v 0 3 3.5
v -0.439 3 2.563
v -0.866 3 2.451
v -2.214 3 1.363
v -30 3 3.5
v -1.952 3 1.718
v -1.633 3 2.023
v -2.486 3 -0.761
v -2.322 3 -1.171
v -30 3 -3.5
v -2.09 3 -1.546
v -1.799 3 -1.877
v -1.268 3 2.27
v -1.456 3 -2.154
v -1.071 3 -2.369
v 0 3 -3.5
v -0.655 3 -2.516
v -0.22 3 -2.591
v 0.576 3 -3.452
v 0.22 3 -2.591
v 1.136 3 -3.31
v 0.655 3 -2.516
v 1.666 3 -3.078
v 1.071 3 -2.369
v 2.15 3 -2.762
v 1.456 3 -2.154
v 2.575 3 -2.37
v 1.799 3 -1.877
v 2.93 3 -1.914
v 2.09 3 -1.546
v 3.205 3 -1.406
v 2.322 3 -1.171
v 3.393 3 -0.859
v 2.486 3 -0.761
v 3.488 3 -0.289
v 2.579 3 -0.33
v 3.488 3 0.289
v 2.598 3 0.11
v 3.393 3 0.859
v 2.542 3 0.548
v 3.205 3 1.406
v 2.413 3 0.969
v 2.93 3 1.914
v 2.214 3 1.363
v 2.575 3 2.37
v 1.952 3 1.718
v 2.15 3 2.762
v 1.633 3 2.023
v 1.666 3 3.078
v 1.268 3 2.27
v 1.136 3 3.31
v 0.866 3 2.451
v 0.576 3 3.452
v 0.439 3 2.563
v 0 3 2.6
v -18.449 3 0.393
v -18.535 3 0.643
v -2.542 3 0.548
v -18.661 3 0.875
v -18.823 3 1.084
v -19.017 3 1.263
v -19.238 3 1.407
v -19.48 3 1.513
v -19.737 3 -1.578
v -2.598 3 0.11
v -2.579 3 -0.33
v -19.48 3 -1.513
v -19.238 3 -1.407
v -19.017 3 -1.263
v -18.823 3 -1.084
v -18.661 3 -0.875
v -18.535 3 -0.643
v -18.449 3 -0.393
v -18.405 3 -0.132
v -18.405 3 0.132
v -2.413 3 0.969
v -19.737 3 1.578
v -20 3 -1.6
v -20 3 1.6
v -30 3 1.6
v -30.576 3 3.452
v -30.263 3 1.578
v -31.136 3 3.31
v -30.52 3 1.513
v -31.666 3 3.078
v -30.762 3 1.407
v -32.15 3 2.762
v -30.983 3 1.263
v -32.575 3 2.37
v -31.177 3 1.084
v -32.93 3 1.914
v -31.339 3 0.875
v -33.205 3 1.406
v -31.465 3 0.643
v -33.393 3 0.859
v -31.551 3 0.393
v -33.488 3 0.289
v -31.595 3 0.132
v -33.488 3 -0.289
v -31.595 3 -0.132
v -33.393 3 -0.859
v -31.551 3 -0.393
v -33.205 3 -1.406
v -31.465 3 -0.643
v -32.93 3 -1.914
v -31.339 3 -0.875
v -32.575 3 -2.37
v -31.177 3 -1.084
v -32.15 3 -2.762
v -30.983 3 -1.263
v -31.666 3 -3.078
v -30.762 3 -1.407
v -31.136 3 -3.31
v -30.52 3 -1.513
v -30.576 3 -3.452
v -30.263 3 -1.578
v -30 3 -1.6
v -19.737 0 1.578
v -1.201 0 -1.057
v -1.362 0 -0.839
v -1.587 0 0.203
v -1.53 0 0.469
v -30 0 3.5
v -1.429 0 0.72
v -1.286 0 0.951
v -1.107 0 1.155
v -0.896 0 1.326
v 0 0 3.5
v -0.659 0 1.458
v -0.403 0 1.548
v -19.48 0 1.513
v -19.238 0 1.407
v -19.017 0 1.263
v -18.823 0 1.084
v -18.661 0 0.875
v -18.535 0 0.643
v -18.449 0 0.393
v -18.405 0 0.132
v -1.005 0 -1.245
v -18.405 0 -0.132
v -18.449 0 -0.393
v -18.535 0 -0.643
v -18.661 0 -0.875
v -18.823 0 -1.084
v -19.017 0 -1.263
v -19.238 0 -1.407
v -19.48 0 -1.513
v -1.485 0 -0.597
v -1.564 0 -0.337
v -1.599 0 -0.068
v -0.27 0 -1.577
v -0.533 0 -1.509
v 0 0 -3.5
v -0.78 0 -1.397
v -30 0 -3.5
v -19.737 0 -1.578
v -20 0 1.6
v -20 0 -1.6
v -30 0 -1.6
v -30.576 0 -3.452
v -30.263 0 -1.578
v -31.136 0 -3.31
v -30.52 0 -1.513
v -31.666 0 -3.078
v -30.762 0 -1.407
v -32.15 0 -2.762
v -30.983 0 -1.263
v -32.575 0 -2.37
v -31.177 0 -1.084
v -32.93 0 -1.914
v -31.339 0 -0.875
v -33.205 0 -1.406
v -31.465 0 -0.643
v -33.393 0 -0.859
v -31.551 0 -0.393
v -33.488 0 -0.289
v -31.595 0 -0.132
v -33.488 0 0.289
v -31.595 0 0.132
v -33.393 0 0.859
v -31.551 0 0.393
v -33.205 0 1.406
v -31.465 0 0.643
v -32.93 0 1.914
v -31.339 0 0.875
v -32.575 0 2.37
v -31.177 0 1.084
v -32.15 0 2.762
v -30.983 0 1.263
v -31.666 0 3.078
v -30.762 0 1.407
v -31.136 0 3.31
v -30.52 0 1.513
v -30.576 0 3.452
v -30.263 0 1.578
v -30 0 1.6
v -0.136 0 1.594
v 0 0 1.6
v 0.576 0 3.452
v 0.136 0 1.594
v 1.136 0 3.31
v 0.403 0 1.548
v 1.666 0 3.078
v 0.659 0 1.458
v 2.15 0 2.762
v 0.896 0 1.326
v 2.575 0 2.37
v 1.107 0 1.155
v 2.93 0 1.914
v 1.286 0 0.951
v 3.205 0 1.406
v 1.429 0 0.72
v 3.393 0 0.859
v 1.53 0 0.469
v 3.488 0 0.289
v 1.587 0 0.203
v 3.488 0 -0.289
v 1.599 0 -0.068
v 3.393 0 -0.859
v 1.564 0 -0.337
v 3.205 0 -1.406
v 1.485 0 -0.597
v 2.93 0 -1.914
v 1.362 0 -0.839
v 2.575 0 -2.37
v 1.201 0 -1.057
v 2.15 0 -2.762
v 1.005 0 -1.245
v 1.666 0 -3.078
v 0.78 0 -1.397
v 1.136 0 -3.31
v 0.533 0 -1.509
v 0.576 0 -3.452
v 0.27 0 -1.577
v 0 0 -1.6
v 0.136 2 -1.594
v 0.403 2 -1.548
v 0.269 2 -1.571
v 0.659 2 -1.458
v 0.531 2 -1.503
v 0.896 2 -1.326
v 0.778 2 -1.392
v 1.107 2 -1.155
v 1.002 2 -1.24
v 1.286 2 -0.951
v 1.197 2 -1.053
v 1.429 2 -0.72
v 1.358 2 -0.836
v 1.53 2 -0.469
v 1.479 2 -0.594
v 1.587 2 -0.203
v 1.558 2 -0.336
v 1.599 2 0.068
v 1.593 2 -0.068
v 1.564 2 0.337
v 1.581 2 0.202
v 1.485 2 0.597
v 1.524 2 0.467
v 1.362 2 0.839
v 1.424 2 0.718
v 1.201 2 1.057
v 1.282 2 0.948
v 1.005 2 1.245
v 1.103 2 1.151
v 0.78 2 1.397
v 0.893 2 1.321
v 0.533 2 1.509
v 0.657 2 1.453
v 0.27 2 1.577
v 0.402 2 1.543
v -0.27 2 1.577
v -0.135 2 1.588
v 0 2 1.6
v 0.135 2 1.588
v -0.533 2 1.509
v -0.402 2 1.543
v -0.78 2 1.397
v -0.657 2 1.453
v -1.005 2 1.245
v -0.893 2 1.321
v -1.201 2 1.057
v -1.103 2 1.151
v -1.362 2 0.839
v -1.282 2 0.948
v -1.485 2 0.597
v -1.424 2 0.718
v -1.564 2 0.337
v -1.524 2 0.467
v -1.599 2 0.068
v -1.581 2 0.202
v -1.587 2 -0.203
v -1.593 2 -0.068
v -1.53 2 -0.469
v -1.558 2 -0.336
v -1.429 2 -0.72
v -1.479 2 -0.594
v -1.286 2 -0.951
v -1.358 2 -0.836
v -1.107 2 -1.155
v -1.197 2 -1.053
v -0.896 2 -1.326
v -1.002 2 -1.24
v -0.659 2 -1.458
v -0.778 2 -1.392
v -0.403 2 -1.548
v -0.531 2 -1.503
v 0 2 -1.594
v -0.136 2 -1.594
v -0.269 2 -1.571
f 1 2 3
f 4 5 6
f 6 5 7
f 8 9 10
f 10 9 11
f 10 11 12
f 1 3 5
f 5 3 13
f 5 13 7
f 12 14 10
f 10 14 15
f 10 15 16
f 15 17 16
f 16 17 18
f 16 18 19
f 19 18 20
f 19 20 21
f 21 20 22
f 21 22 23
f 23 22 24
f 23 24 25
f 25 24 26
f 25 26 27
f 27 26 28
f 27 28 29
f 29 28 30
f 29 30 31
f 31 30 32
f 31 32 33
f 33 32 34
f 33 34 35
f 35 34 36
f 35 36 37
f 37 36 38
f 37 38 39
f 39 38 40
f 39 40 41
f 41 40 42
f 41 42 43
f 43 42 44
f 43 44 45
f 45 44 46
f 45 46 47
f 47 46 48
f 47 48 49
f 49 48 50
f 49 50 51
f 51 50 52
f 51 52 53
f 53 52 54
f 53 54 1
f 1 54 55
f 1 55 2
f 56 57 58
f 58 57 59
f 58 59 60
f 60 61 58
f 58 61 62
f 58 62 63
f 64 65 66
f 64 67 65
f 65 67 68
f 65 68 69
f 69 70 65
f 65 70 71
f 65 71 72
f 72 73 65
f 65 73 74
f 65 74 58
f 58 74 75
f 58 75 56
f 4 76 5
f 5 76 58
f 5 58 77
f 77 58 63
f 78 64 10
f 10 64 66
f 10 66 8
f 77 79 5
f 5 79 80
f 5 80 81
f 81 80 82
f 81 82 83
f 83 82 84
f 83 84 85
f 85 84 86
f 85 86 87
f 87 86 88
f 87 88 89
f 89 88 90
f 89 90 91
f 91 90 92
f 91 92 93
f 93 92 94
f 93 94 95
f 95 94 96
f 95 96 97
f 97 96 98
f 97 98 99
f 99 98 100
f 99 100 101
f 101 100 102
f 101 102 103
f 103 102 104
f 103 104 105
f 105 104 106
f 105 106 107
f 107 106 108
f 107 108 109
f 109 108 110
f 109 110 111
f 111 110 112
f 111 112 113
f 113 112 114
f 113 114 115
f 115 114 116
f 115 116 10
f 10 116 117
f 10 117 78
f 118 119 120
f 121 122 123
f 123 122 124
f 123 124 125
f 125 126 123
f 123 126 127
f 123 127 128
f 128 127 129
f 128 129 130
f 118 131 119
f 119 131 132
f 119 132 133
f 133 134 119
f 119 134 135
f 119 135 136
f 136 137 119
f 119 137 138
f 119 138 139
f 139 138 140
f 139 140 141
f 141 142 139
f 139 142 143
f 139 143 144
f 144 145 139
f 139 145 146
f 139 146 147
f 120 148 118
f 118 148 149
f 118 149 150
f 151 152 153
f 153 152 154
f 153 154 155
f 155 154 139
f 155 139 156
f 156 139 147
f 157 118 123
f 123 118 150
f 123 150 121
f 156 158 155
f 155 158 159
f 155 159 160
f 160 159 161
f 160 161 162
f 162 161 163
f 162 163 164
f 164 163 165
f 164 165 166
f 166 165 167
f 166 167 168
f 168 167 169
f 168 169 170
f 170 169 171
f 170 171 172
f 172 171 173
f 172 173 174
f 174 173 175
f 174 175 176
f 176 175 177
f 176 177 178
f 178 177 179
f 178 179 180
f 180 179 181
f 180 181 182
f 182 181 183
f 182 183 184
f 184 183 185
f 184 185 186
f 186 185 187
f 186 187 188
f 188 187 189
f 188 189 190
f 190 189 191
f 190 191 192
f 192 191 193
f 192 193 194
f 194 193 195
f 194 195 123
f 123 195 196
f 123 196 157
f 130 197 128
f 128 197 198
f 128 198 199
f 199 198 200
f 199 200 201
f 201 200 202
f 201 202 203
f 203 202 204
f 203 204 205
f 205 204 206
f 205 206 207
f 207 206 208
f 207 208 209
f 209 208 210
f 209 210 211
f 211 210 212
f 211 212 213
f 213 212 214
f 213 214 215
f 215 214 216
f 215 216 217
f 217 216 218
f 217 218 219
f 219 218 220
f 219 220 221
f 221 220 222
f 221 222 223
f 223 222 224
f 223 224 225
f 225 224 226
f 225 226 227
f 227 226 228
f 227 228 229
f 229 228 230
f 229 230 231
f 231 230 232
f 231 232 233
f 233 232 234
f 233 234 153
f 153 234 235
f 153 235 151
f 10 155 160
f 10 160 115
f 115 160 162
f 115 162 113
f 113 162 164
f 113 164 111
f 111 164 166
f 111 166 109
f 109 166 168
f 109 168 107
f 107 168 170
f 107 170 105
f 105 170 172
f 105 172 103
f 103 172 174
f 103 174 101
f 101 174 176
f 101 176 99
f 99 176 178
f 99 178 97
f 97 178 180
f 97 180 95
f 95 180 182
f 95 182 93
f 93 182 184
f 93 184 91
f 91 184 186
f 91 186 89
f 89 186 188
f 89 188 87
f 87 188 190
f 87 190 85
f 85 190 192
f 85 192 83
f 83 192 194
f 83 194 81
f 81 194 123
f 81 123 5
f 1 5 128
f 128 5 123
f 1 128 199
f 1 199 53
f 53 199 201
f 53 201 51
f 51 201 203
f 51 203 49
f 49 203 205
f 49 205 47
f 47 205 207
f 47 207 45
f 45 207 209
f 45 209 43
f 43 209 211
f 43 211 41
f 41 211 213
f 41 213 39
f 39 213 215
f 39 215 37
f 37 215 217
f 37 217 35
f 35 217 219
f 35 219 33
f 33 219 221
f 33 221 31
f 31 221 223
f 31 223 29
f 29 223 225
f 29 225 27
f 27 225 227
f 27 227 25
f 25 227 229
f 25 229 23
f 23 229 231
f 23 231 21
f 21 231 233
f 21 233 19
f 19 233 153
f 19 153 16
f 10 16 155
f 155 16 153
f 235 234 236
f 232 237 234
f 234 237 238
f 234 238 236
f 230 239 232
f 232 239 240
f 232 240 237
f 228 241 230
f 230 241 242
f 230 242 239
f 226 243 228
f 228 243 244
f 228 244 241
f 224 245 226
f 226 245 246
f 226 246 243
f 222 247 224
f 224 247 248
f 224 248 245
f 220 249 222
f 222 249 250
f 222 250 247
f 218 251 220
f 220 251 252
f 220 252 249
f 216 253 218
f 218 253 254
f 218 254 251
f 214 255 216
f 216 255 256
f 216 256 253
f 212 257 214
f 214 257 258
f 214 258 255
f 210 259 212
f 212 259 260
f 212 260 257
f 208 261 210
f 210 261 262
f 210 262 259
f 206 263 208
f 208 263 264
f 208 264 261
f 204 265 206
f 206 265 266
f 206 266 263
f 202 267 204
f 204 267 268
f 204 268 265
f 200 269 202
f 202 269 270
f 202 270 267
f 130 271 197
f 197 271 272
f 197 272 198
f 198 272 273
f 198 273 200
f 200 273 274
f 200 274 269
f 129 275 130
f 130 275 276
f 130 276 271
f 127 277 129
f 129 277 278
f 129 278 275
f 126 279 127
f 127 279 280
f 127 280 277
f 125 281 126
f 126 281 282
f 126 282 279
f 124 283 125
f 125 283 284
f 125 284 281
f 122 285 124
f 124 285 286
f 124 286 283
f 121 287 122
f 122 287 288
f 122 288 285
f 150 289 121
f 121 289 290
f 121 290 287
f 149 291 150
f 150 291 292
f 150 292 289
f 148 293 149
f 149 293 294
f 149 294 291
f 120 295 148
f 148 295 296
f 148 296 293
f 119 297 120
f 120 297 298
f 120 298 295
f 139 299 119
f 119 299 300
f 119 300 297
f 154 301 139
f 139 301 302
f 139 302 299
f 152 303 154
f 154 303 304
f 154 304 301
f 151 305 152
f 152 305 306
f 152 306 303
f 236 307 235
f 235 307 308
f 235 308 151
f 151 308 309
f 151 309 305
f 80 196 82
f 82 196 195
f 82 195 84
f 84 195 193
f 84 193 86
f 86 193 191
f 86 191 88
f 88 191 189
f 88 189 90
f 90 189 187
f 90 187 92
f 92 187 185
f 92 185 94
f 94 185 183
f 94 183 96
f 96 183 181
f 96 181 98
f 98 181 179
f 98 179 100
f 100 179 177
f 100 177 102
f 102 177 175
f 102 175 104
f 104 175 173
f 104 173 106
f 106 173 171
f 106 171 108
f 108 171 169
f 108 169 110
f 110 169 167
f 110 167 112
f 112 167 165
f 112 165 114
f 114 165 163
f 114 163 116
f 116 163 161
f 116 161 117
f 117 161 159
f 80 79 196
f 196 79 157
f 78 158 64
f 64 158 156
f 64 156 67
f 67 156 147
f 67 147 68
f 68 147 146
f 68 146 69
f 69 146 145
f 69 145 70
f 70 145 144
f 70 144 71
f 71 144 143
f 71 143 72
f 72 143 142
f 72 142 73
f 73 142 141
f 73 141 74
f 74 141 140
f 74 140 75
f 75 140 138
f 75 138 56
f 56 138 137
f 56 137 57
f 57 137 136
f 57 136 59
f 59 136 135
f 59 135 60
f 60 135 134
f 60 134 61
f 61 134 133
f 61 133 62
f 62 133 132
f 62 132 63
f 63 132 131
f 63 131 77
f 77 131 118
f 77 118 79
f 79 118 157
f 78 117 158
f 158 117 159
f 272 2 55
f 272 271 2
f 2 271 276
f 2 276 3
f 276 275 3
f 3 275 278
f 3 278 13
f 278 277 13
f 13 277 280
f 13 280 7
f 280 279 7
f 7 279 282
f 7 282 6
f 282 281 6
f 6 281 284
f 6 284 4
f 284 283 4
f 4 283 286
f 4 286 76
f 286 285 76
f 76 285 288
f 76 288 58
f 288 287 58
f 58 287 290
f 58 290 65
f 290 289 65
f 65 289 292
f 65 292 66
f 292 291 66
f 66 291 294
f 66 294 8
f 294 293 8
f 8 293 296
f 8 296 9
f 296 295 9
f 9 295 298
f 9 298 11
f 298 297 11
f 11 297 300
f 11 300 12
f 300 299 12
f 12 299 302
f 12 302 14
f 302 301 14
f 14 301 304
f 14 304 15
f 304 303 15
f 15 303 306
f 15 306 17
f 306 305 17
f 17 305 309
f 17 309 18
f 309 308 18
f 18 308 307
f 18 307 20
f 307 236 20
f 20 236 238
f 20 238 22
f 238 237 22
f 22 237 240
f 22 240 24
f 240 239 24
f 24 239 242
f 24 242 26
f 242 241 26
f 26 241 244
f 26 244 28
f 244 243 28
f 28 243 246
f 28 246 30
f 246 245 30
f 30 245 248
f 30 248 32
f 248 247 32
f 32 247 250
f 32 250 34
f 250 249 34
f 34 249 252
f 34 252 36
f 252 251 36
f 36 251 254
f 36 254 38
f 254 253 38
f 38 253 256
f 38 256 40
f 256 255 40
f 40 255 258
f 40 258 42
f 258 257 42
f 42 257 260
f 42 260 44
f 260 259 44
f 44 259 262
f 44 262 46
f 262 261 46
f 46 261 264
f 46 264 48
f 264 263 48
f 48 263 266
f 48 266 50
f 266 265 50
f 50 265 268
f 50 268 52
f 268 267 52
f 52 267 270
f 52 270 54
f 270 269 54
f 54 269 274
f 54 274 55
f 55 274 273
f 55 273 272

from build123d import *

# Parameters (mm, degrees)
SKETCH_1_R      = 1.6
EXTRUDE_1_DEPTH = 3
CHAMFER_1_SIZE  = 1


with BuildPart() as part:
    # Эскиз1 → Бобышка-Вытянуть1 (new body)
    with BuildSketch(Plane(origin=(0, 0, 0), x_dir=(1, 0, 0), z_dir=(0, 1, 0))):
        with BuildLine():
            Line((-30, 3.5), (0, 3.5))
            ThreePointArc((0, 3.5), (3.5, 0), (0, -3.5))
            Line((0, -3.5), (-30, -3.5))
            ThreePointArc((-30, -3.5), (-33.5, 0), (-30, 3.5))
        make_face()
        Circle(SKETCH_1_R, mode=Mode.SUBTRACT)
        with BuildLine():
            Line((-30, 1.6), (-20, 1.6))
            ThreePointArc((-20, 1.6), (-18.4, 0), (-20, -1.6))
            Line((-20, -1.6), (-30, -1.6))
            ThreePointArc((-30, -1.6), (-31.6, 0), (-30, 1.6))
        make_face(mode=Mode.SUBTRACT)
    extrude(amount=EXTRUDE_1_DEPTH)

    # Фаска1
    chamfer_1_edges = [part.edges().sort_by_distance(p)[0] for p in [
        (-1.6, 3, 0),
    ]]
    chamfer(chamfer_1_edges, length=CHAMFER_1_SIZE)


solid = part.part
